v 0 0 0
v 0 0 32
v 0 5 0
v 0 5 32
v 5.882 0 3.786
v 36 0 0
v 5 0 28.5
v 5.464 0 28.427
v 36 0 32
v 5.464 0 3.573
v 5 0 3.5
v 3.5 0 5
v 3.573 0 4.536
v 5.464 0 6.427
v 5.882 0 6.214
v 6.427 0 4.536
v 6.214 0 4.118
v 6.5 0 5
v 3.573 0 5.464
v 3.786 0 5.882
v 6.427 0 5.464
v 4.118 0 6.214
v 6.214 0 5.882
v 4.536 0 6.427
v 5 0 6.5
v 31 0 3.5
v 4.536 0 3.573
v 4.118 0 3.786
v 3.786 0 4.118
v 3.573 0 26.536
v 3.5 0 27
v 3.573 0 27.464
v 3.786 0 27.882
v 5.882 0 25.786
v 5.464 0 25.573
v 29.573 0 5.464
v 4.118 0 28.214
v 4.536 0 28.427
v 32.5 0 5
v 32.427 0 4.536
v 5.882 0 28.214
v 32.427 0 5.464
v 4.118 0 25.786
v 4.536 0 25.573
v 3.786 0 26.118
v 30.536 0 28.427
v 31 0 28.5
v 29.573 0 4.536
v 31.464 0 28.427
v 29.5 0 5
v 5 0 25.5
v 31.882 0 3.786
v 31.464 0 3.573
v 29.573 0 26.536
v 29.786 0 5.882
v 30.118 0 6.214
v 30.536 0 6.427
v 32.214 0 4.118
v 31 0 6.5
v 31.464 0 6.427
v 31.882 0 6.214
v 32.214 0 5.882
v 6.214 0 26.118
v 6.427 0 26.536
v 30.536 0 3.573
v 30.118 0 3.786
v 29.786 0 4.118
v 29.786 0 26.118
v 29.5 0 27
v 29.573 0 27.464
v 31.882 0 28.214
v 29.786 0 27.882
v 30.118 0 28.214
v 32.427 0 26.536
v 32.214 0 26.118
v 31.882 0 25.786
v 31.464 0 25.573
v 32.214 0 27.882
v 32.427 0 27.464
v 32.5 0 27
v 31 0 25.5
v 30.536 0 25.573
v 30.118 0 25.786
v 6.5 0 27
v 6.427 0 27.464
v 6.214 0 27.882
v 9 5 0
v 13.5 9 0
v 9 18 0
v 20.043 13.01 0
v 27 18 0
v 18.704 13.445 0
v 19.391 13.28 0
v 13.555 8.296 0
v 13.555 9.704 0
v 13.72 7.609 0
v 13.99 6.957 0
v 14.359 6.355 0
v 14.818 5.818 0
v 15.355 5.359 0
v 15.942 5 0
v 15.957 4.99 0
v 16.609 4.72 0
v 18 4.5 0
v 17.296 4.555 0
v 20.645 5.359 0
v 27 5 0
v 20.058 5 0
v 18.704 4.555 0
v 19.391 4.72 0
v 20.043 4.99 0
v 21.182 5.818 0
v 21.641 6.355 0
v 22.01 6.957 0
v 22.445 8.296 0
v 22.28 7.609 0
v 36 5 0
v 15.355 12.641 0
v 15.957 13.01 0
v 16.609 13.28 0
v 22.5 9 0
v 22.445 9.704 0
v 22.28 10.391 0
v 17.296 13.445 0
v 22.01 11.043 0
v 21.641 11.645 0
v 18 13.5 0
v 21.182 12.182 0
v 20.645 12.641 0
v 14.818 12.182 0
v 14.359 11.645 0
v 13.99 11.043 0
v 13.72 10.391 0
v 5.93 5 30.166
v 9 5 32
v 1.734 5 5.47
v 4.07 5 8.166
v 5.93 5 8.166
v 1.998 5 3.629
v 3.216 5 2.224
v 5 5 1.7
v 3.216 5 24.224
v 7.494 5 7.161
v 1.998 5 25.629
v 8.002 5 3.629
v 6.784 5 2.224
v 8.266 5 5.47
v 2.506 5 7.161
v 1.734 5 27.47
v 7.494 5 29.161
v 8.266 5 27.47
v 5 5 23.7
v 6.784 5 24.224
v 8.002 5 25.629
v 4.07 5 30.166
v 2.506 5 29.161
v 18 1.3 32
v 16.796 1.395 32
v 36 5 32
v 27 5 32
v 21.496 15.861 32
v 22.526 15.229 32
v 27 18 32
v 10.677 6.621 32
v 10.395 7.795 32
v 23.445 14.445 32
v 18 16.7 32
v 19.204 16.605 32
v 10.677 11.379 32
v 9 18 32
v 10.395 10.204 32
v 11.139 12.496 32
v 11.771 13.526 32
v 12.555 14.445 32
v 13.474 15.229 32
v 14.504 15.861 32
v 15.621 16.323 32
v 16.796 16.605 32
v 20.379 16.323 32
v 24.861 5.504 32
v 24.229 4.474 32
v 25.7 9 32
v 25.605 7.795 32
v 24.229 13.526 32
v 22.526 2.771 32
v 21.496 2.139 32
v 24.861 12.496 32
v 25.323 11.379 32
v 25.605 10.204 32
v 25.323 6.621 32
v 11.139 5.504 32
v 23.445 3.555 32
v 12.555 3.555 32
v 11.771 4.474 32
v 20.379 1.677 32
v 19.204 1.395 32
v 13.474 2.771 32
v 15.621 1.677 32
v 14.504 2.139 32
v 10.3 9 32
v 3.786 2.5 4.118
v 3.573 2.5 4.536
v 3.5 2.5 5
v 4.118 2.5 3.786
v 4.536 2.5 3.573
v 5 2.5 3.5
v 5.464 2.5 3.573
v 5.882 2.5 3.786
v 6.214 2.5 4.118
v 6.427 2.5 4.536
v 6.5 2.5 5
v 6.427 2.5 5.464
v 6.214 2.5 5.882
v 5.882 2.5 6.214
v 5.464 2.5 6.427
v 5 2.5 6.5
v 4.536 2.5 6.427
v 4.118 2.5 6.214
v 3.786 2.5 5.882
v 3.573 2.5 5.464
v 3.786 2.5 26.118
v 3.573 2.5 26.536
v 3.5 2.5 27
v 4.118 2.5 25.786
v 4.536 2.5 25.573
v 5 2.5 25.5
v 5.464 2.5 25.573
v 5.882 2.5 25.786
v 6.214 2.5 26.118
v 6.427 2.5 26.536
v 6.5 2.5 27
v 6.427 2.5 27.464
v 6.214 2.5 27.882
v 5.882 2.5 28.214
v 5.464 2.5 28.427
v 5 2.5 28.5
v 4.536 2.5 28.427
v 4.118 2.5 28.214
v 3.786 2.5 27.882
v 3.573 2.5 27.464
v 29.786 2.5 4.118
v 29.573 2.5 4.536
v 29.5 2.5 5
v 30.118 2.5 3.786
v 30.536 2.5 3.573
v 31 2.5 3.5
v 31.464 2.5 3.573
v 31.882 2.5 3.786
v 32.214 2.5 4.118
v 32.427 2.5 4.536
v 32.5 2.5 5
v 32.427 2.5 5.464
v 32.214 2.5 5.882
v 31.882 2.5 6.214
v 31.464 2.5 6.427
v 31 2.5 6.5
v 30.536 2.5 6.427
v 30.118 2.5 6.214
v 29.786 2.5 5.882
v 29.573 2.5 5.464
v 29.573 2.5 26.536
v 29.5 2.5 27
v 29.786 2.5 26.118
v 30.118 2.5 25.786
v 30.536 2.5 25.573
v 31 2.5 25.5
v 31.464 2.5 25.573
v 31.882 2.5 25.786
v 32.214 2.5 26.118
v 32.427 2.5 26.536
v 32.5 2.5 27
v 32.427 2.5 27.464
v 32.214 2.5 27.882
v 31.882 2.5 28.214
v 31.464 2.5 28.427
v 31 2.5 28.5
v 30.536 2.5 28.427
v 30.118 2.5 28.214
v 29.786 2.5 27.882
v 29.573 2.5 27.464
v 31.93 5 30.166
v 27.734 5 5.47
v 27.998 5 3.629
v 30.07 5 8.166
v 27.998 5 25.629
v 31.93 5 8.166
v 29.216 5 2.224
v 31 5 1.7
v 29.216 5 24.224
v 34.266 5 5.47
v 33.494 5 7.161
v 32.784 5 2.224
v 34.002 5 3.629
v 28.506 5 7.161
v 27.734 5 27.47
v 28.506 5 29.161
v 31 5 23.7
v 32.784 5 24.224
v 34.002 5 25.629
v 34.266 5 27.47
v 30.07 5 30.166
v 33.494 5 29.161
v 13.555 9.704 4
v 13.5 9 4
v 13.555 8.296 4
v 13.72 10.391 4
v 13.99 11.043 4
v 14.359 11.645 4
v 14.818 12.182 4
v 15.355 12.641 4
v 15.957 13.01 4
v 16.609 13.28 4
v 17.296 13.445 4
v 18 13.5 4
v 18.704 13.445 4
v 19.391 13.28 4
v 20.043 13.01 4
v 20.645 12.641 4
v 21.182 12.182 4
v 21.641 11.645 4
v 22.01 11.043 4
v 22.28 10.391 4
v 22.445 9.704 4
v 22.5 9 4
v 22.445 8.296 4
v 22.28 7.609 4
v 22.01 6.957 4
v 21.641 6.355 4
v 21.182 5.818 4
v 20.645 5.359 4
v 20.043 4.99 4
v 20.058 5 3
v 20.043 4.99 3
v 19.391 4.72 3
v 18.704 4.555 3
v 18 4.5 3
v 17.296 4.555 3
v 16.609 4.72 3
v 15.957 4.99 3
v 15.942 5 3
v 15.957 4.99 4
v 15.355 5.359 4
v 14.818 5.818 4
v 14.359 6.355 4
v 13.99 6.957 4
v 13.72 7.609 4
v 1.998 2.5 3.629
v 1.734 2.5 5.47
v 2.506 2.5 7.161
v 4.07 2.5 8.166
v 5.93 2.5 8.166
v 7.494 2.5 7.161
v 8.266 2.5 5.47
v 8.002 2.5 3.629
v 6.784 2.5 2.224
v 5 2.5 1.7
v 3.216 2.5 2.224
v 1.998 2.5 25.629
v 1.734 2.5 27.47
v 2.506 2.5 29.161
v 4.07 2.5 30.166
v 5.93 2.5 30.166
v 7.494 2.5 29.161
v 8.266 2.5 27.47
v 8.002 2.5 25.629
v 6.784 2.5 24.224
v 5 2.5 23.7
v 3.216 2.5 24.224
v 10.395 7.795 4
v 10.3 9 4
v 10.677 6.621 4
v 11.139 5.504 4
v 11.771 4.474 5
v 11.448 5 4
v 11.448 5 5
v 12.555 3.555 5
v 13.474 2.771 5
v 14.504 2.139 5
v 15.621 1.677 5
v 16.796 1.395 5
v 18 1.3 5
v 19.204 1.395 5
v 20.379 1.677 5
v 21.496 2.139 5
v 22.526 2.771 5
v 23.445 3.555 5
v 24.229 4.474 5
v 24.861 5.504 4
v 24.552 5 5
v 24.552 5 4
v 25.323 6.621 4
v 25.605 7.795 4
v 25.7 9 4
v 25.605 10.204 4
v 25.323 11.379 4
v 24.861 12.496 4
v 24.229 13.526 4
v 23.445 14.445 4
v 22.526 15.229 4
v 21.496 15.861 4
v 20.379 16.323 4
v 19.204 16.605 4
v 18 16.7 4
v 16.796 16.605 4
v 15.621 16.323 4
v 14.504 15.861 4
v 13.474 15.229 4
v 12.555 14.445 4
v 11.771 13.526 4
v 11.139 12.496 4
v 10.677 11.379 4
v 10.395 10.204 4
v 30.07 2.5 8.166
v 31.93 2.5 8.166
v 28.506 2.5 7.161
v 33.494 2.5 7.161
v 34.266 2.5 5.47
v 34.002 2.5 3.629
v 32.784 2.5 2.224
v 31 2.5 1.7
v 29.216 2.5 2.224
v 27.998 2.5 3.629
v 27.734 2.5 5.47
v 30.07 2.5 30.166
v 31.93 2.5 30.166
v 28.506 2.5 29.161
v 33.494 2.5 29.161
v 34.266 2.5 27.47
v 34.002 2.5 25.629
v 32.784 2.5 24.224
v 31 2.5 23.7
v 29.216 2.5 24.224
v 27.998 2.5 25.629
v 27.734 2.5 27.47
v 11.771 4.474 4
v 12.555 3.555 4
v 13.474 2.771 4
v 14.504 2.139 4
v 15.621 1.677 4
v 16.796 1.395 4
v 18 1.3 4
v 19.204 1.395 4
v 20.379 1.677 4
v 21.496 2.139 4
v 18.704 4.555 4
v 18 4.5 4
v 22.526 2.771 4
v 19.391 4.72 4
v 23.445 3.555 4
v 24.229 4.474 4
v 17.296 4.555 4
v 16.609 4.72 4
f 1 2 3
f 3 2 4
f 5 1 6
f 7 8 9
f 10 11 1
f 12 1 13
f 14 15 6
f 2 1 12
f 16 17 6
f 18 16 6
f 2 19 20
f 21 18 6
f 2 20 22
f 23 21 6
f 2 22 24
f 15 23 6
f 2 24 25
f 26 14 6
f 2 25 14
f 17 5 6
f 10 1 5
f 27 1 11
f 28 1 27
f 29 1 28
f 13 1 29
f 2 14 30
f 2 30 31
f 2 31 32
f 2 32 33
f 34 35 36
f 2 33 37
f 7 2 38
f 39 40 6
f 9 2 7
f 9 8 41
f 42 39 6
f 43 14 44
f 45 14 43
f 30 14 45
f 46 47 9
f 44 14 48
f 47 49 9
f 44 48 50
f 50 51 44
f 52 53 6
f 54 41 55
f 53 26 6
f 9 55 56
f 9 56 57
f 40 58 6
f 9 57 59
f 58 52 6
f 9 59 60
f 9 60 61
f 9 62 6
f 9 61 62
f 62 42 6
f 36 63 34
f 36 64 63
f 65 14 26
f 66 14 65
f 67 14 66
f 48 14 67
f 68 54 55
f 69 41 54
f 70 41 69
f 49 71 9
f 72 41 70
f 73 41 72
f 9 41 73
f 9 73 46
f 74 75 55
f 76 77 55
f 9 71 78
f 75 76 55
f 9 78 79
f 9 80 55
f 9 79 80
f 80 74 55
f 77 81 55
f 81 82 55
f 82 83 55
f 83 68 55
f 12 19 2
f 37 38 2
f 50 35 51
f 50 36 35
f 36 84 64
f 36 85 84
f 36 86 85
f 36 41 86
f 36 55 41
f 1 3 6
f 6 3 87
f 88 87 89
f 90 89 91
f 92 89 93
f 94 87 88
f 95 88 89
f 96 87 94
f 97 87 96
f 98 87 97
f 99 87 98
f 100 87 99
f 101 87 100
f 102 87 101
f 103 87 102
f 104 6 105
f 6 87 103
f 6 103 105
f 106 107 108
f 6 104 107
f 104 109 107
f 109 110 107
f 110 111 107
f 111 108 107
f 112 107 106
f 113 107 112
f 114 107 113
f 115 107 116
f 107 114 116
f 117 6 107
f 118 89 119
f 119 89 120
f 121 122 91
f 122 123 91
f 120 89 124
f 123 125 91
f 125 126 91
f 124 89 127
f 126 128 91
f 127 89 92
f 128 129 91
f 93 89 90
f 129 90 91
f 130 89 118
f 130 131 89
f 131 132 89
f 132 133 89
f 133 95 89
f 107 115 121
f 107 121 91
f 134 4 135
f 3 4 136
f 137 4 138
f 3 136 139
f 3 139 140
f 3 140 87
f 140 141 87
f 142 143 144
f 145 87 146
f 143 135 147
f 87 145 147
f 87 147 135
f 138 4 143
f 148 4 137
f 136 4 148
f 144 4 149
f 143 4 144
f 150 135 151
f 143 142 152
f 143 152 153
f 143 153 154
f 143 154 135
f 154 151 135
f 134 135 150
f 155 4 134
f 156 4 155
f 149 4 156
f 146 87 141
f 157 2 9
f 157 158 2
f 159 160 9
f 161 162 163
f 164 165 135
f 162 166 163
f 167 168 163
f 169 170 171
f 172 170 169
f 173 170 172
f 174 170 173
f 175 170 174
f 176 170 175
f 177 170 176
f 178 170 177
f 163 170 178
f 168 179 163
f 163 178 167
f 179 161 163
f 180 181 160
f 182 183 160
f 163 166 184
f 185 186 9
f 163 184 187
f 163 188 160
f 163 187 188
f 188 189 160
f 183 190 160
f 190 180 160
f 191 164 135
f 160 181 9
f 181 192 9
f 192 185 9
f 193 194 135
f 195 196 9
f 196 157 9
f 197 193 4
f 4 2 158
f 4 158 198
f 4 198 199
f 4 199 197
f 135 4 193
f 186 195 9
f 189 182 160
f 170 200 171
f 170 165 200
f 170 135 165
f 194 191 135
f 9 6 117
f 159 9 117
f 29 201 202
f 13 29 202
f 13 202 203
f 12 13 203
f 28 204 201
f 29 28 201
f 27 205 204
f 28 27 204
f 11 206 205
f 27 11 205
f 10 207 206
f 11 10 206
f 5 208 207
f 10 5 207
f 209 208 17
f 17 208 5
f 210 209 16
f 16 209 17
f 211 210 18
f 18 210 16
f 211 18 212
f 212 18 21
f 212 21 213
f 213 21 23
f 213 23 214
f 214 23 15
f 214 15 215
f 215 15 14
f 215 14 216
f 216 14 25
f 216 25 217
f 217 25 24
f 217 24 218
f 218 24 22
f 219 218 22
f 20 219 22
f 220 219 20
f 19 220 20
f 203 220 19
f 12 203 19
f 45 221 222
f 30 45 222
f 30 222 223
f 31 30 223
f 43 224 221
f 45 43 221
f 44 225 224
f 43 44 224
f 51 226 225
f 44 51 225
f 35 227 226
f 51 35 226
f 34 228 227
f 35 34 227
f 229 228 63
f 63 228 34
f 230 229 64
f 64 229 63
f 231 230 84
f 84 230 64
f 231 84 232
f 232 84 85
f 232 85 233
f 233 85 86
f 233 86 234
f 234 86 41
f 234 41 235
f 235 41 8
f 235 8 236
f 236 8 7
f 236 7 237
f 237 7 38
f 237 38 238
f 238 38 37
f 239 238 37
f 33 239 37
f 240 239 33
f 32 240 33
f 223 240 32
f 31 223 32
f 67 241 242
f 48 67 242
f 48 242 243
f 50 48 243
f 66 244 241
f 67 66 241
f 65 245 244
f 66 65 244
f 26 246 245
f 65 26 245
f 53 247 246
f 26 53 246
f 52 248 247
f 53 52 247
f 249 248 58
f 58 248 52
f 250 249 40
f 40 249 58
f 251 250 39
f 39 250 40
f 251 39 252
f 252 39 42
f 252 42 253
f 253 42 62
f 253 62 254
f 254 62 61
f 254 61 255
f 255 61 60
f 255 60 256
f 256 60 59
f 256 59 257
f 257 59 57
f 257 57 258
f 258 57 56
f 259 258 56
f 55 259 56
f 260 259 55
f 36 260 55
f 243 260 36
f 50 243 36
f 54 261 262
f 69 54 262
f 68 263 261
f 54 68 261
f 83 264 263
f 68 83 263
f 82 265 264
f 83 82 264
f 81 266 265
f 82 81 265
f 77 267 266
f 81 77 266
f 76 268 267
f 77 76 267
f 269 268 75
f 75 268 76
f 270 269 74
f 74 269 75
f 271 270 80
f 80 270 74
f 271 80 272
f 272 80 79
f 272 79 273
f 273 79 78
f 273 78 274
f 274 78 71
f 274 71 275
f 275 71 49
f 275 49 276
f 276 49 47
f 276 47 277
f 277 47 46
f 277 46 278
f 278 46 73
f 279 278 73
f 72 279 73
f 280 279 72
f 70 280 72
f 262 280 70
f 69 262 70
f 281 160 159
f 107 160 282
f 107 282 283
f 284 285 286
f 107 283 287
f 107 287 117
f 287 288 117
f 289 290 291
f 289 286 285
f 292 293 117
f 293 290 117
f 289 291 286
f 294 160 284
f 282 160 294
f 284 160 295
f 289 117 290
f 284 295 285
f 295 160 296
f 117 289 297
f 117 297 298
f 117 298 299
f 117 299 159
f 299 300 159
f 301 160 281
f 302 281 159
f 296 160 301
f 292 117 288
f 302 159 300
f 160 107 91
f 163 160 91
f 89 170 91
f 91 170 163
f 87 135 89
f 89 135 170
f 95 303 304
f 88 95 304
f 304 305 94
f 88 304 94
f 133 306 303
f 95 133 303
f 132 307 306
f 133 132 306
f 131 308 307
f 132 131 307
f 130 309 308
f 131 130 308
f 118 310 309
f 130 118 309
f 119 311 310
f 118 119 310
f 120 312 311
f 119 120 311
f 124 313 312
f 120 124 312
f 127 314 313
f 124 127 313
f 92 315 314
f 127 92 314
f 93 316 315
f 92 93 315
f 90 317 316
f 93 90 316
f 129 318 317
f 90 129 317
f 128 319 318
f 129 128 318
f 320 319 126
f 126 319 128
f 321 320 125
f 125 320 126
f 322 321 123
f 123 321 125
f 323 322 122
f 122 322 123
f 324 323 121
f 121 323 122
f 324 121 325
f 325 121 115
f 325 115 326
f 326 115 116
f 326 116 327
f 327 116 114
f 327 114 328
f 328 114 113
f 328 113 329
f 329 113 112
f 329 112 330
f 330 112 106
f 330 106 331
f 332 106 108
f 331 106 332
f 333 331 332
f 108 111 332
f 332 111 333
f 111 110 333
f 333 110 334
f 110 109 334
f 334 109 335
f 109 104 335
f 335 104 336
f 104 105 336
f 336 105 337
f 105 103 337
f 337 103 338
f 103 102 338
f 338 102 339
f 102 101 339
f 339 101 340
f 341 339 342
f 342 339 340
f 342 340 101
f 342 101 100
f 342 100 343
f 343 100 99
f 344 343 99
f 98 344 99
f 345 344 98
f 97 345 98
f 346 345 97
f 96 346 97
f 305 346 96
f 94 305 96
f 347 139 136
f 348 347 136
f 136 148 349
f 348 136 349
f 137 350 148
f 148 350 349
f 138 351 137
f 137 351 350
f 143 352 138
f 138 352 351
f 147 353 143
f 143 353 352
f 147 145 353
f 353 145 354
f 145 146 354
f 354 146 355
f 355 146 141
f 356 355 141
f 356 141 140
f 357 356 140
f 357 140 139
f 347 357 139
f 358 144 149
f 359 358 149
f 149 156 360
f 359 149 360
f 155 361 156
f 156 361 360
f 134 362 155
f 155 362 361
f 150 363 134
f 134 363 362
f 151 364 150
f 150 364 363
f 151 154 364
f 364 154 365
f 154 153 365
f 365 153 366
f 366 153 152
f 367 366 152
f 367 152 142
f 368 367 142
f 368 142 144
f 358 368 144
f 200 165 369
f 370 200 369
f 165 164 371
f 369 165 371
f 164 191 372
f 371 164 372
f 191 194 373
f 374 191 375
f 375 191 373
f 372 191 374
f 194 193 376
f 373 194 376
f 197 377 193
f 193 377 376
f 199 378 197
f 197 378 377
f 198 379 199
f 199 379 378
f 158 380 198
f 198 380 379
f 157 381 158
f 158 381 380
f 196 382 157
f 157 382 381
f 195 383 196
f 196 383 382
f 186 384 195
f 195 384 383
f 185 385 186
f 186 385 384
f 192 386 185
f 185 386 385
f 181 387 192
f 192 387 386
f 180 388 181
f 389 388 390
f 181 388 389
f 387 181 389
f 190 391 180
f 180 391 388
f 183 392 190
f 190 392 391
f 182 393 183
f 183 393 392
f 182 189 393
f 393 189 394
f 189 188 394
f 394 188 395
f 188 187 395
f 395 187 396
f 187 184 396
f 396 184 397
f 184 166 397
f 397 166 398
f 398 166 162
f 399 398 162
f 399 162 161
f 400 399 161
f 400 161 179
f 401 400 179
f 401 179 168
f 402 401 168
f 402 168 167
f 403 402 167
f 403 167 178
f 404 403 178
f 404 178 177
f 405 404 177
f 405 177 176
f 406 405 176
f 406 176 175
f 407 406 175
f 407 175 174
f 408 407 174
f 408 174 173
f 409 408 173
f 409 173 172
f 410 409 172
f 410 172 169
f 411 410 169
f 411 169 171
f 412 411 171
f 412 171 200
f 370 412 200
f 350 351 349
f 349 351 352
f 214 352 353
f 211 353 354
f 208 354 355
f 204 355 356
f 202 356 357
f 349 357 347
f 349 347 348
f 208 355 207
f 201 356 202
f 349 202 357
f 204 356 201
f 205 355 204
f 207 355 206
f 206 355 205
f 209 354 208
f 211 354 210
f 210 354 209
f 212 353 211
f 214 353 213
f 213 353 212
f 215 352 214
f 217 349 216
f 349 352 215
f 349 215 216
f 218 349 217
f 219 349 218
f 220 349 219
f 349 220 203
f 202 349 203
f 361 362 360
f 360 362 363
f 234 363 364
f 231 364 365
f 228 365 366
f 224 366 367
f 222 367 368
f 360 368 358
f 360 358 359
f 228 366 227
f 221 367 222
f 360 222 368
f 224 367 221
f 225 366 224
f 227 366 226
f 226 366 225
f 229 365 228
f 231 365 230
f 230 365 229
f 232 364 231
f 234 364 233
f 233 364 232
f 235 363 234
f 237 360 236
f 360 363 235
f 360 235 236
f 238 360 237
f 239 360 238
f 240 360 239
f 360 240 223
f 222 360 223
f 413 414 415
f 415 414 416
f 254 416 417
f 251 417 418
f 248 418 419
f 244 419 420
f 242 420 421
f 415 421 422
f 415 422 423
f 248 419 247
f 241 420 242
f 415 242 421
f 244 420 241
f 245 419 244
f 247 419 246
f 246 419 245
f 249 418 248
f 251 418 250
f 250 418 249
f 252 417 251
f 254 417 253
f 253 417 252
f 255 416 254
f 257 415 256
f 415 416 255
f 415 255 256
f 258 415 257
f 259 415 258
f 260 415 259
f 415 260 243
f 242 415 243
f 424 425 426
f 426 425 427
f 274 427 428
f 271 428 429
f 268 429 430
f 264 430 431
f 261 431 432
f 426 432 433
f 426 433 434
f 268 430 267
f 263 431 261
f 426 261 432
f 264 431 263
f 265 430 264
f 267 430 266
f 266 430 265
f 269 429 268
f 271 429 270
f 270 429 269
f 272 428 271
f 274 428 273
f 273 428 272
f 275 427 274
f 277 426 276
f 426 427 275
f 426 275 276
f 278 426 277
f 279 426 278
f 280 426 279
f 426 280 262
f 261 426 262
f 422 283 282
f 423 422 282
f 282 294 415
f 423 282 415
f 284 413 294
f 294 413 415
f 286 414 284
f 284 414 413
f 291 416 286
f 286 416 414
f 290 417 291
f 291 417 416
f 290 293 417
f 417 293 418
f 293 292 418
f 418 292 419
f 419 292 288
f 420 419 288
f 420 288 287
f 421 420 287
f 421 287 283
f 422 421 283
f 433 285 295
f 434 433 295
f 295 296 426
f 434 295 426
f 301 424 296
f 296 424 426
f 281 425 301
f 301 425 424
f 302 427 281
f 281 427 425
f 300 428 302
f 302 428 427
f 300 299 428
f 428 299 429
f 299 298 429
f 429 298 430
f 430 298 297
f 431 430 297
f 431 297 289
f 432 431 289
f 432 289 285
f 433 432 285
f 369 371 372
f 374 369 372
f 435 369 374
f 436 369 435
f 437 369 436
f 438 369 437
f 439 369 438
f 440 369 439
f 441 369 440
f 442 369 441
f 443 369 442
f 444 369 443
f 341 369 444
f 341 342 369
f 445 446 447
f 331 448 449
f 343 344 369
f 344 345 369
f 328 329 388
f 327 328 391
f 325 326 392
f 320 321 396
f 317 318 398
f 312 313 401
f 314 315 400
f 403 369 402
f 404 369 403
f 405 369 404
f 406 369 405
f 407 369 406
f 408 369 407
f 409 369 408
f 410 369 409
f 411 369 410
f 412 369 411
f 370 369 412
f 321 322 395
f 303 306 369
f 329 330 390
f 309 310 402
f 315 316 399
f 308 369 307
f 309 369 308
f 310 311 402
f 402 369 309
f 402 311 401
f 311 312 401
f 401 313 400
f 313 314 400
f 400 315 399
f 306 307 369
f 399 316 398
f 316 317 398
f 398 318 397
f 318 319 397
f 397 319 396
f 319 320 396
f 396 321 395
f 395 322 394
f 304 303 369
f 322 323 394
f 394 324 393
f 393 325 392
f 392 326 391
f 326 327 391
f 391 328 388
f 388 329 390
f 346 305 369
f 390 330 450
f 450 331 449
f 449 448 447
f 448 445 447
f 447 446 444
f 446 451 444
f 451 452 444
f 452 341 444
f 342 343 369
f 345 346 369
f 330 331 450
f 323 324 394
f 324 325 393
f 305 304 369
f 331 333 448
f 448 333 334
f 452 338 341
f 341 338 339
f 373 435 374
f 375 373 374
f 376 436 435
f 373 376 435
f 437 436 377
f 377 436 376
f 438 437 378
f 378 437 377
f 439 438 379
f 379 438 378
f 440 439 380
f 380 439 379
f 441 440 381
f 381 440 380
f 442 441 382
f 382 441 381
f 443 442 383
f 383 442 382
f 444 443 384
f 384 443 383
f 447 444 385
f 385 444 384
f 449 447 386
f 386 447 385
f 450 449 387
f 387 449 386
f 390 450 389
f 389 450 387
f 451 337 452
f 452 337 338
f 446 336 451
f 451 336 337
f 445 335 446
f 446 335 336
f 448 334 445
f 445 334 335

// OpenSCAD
// d1=15;
// Увеличиваем внутренний диаметр на 0.4 мм
d1=15.4;
d2=9;
module hole(x,y) {
		translate([x,-1,y]) rotate([-90,0,0]) {
			cylinder(7,r=3/2,$fn=20);
			translate([0,0,3.5]) rotate([0,0,90])cylinder(3,r=6.6/2,$fa=10);
		}
}

union() {
	difference() {
		cube([36,5,32]);
		hole(5,5);
		hole(5,27);
		hole(31,27);
		//hole(31,13);
		hole(31,5);
		translate([5,-1,5]) rotate([-90,0,0]) {
			translate([10,0,0]) rotate([-90,0,0]) {
				translate([3,-10,-28]) cylinder(30,r=d1/2,$fn=40);
				translate([3,-10,0]) rotate([0,0,90]) cylinder(20,r=d2/2,$fn=40);
			}
		}
	}
	translate([9,0,0])	difference() {
		cube([18,18,32]);
		translate([9,9,-1]) cylinder(25,r=d2/2,$fn=40);
		translate([9,9,4]) cylinder(30,r=d1/2,$fn=40);
	}
}
